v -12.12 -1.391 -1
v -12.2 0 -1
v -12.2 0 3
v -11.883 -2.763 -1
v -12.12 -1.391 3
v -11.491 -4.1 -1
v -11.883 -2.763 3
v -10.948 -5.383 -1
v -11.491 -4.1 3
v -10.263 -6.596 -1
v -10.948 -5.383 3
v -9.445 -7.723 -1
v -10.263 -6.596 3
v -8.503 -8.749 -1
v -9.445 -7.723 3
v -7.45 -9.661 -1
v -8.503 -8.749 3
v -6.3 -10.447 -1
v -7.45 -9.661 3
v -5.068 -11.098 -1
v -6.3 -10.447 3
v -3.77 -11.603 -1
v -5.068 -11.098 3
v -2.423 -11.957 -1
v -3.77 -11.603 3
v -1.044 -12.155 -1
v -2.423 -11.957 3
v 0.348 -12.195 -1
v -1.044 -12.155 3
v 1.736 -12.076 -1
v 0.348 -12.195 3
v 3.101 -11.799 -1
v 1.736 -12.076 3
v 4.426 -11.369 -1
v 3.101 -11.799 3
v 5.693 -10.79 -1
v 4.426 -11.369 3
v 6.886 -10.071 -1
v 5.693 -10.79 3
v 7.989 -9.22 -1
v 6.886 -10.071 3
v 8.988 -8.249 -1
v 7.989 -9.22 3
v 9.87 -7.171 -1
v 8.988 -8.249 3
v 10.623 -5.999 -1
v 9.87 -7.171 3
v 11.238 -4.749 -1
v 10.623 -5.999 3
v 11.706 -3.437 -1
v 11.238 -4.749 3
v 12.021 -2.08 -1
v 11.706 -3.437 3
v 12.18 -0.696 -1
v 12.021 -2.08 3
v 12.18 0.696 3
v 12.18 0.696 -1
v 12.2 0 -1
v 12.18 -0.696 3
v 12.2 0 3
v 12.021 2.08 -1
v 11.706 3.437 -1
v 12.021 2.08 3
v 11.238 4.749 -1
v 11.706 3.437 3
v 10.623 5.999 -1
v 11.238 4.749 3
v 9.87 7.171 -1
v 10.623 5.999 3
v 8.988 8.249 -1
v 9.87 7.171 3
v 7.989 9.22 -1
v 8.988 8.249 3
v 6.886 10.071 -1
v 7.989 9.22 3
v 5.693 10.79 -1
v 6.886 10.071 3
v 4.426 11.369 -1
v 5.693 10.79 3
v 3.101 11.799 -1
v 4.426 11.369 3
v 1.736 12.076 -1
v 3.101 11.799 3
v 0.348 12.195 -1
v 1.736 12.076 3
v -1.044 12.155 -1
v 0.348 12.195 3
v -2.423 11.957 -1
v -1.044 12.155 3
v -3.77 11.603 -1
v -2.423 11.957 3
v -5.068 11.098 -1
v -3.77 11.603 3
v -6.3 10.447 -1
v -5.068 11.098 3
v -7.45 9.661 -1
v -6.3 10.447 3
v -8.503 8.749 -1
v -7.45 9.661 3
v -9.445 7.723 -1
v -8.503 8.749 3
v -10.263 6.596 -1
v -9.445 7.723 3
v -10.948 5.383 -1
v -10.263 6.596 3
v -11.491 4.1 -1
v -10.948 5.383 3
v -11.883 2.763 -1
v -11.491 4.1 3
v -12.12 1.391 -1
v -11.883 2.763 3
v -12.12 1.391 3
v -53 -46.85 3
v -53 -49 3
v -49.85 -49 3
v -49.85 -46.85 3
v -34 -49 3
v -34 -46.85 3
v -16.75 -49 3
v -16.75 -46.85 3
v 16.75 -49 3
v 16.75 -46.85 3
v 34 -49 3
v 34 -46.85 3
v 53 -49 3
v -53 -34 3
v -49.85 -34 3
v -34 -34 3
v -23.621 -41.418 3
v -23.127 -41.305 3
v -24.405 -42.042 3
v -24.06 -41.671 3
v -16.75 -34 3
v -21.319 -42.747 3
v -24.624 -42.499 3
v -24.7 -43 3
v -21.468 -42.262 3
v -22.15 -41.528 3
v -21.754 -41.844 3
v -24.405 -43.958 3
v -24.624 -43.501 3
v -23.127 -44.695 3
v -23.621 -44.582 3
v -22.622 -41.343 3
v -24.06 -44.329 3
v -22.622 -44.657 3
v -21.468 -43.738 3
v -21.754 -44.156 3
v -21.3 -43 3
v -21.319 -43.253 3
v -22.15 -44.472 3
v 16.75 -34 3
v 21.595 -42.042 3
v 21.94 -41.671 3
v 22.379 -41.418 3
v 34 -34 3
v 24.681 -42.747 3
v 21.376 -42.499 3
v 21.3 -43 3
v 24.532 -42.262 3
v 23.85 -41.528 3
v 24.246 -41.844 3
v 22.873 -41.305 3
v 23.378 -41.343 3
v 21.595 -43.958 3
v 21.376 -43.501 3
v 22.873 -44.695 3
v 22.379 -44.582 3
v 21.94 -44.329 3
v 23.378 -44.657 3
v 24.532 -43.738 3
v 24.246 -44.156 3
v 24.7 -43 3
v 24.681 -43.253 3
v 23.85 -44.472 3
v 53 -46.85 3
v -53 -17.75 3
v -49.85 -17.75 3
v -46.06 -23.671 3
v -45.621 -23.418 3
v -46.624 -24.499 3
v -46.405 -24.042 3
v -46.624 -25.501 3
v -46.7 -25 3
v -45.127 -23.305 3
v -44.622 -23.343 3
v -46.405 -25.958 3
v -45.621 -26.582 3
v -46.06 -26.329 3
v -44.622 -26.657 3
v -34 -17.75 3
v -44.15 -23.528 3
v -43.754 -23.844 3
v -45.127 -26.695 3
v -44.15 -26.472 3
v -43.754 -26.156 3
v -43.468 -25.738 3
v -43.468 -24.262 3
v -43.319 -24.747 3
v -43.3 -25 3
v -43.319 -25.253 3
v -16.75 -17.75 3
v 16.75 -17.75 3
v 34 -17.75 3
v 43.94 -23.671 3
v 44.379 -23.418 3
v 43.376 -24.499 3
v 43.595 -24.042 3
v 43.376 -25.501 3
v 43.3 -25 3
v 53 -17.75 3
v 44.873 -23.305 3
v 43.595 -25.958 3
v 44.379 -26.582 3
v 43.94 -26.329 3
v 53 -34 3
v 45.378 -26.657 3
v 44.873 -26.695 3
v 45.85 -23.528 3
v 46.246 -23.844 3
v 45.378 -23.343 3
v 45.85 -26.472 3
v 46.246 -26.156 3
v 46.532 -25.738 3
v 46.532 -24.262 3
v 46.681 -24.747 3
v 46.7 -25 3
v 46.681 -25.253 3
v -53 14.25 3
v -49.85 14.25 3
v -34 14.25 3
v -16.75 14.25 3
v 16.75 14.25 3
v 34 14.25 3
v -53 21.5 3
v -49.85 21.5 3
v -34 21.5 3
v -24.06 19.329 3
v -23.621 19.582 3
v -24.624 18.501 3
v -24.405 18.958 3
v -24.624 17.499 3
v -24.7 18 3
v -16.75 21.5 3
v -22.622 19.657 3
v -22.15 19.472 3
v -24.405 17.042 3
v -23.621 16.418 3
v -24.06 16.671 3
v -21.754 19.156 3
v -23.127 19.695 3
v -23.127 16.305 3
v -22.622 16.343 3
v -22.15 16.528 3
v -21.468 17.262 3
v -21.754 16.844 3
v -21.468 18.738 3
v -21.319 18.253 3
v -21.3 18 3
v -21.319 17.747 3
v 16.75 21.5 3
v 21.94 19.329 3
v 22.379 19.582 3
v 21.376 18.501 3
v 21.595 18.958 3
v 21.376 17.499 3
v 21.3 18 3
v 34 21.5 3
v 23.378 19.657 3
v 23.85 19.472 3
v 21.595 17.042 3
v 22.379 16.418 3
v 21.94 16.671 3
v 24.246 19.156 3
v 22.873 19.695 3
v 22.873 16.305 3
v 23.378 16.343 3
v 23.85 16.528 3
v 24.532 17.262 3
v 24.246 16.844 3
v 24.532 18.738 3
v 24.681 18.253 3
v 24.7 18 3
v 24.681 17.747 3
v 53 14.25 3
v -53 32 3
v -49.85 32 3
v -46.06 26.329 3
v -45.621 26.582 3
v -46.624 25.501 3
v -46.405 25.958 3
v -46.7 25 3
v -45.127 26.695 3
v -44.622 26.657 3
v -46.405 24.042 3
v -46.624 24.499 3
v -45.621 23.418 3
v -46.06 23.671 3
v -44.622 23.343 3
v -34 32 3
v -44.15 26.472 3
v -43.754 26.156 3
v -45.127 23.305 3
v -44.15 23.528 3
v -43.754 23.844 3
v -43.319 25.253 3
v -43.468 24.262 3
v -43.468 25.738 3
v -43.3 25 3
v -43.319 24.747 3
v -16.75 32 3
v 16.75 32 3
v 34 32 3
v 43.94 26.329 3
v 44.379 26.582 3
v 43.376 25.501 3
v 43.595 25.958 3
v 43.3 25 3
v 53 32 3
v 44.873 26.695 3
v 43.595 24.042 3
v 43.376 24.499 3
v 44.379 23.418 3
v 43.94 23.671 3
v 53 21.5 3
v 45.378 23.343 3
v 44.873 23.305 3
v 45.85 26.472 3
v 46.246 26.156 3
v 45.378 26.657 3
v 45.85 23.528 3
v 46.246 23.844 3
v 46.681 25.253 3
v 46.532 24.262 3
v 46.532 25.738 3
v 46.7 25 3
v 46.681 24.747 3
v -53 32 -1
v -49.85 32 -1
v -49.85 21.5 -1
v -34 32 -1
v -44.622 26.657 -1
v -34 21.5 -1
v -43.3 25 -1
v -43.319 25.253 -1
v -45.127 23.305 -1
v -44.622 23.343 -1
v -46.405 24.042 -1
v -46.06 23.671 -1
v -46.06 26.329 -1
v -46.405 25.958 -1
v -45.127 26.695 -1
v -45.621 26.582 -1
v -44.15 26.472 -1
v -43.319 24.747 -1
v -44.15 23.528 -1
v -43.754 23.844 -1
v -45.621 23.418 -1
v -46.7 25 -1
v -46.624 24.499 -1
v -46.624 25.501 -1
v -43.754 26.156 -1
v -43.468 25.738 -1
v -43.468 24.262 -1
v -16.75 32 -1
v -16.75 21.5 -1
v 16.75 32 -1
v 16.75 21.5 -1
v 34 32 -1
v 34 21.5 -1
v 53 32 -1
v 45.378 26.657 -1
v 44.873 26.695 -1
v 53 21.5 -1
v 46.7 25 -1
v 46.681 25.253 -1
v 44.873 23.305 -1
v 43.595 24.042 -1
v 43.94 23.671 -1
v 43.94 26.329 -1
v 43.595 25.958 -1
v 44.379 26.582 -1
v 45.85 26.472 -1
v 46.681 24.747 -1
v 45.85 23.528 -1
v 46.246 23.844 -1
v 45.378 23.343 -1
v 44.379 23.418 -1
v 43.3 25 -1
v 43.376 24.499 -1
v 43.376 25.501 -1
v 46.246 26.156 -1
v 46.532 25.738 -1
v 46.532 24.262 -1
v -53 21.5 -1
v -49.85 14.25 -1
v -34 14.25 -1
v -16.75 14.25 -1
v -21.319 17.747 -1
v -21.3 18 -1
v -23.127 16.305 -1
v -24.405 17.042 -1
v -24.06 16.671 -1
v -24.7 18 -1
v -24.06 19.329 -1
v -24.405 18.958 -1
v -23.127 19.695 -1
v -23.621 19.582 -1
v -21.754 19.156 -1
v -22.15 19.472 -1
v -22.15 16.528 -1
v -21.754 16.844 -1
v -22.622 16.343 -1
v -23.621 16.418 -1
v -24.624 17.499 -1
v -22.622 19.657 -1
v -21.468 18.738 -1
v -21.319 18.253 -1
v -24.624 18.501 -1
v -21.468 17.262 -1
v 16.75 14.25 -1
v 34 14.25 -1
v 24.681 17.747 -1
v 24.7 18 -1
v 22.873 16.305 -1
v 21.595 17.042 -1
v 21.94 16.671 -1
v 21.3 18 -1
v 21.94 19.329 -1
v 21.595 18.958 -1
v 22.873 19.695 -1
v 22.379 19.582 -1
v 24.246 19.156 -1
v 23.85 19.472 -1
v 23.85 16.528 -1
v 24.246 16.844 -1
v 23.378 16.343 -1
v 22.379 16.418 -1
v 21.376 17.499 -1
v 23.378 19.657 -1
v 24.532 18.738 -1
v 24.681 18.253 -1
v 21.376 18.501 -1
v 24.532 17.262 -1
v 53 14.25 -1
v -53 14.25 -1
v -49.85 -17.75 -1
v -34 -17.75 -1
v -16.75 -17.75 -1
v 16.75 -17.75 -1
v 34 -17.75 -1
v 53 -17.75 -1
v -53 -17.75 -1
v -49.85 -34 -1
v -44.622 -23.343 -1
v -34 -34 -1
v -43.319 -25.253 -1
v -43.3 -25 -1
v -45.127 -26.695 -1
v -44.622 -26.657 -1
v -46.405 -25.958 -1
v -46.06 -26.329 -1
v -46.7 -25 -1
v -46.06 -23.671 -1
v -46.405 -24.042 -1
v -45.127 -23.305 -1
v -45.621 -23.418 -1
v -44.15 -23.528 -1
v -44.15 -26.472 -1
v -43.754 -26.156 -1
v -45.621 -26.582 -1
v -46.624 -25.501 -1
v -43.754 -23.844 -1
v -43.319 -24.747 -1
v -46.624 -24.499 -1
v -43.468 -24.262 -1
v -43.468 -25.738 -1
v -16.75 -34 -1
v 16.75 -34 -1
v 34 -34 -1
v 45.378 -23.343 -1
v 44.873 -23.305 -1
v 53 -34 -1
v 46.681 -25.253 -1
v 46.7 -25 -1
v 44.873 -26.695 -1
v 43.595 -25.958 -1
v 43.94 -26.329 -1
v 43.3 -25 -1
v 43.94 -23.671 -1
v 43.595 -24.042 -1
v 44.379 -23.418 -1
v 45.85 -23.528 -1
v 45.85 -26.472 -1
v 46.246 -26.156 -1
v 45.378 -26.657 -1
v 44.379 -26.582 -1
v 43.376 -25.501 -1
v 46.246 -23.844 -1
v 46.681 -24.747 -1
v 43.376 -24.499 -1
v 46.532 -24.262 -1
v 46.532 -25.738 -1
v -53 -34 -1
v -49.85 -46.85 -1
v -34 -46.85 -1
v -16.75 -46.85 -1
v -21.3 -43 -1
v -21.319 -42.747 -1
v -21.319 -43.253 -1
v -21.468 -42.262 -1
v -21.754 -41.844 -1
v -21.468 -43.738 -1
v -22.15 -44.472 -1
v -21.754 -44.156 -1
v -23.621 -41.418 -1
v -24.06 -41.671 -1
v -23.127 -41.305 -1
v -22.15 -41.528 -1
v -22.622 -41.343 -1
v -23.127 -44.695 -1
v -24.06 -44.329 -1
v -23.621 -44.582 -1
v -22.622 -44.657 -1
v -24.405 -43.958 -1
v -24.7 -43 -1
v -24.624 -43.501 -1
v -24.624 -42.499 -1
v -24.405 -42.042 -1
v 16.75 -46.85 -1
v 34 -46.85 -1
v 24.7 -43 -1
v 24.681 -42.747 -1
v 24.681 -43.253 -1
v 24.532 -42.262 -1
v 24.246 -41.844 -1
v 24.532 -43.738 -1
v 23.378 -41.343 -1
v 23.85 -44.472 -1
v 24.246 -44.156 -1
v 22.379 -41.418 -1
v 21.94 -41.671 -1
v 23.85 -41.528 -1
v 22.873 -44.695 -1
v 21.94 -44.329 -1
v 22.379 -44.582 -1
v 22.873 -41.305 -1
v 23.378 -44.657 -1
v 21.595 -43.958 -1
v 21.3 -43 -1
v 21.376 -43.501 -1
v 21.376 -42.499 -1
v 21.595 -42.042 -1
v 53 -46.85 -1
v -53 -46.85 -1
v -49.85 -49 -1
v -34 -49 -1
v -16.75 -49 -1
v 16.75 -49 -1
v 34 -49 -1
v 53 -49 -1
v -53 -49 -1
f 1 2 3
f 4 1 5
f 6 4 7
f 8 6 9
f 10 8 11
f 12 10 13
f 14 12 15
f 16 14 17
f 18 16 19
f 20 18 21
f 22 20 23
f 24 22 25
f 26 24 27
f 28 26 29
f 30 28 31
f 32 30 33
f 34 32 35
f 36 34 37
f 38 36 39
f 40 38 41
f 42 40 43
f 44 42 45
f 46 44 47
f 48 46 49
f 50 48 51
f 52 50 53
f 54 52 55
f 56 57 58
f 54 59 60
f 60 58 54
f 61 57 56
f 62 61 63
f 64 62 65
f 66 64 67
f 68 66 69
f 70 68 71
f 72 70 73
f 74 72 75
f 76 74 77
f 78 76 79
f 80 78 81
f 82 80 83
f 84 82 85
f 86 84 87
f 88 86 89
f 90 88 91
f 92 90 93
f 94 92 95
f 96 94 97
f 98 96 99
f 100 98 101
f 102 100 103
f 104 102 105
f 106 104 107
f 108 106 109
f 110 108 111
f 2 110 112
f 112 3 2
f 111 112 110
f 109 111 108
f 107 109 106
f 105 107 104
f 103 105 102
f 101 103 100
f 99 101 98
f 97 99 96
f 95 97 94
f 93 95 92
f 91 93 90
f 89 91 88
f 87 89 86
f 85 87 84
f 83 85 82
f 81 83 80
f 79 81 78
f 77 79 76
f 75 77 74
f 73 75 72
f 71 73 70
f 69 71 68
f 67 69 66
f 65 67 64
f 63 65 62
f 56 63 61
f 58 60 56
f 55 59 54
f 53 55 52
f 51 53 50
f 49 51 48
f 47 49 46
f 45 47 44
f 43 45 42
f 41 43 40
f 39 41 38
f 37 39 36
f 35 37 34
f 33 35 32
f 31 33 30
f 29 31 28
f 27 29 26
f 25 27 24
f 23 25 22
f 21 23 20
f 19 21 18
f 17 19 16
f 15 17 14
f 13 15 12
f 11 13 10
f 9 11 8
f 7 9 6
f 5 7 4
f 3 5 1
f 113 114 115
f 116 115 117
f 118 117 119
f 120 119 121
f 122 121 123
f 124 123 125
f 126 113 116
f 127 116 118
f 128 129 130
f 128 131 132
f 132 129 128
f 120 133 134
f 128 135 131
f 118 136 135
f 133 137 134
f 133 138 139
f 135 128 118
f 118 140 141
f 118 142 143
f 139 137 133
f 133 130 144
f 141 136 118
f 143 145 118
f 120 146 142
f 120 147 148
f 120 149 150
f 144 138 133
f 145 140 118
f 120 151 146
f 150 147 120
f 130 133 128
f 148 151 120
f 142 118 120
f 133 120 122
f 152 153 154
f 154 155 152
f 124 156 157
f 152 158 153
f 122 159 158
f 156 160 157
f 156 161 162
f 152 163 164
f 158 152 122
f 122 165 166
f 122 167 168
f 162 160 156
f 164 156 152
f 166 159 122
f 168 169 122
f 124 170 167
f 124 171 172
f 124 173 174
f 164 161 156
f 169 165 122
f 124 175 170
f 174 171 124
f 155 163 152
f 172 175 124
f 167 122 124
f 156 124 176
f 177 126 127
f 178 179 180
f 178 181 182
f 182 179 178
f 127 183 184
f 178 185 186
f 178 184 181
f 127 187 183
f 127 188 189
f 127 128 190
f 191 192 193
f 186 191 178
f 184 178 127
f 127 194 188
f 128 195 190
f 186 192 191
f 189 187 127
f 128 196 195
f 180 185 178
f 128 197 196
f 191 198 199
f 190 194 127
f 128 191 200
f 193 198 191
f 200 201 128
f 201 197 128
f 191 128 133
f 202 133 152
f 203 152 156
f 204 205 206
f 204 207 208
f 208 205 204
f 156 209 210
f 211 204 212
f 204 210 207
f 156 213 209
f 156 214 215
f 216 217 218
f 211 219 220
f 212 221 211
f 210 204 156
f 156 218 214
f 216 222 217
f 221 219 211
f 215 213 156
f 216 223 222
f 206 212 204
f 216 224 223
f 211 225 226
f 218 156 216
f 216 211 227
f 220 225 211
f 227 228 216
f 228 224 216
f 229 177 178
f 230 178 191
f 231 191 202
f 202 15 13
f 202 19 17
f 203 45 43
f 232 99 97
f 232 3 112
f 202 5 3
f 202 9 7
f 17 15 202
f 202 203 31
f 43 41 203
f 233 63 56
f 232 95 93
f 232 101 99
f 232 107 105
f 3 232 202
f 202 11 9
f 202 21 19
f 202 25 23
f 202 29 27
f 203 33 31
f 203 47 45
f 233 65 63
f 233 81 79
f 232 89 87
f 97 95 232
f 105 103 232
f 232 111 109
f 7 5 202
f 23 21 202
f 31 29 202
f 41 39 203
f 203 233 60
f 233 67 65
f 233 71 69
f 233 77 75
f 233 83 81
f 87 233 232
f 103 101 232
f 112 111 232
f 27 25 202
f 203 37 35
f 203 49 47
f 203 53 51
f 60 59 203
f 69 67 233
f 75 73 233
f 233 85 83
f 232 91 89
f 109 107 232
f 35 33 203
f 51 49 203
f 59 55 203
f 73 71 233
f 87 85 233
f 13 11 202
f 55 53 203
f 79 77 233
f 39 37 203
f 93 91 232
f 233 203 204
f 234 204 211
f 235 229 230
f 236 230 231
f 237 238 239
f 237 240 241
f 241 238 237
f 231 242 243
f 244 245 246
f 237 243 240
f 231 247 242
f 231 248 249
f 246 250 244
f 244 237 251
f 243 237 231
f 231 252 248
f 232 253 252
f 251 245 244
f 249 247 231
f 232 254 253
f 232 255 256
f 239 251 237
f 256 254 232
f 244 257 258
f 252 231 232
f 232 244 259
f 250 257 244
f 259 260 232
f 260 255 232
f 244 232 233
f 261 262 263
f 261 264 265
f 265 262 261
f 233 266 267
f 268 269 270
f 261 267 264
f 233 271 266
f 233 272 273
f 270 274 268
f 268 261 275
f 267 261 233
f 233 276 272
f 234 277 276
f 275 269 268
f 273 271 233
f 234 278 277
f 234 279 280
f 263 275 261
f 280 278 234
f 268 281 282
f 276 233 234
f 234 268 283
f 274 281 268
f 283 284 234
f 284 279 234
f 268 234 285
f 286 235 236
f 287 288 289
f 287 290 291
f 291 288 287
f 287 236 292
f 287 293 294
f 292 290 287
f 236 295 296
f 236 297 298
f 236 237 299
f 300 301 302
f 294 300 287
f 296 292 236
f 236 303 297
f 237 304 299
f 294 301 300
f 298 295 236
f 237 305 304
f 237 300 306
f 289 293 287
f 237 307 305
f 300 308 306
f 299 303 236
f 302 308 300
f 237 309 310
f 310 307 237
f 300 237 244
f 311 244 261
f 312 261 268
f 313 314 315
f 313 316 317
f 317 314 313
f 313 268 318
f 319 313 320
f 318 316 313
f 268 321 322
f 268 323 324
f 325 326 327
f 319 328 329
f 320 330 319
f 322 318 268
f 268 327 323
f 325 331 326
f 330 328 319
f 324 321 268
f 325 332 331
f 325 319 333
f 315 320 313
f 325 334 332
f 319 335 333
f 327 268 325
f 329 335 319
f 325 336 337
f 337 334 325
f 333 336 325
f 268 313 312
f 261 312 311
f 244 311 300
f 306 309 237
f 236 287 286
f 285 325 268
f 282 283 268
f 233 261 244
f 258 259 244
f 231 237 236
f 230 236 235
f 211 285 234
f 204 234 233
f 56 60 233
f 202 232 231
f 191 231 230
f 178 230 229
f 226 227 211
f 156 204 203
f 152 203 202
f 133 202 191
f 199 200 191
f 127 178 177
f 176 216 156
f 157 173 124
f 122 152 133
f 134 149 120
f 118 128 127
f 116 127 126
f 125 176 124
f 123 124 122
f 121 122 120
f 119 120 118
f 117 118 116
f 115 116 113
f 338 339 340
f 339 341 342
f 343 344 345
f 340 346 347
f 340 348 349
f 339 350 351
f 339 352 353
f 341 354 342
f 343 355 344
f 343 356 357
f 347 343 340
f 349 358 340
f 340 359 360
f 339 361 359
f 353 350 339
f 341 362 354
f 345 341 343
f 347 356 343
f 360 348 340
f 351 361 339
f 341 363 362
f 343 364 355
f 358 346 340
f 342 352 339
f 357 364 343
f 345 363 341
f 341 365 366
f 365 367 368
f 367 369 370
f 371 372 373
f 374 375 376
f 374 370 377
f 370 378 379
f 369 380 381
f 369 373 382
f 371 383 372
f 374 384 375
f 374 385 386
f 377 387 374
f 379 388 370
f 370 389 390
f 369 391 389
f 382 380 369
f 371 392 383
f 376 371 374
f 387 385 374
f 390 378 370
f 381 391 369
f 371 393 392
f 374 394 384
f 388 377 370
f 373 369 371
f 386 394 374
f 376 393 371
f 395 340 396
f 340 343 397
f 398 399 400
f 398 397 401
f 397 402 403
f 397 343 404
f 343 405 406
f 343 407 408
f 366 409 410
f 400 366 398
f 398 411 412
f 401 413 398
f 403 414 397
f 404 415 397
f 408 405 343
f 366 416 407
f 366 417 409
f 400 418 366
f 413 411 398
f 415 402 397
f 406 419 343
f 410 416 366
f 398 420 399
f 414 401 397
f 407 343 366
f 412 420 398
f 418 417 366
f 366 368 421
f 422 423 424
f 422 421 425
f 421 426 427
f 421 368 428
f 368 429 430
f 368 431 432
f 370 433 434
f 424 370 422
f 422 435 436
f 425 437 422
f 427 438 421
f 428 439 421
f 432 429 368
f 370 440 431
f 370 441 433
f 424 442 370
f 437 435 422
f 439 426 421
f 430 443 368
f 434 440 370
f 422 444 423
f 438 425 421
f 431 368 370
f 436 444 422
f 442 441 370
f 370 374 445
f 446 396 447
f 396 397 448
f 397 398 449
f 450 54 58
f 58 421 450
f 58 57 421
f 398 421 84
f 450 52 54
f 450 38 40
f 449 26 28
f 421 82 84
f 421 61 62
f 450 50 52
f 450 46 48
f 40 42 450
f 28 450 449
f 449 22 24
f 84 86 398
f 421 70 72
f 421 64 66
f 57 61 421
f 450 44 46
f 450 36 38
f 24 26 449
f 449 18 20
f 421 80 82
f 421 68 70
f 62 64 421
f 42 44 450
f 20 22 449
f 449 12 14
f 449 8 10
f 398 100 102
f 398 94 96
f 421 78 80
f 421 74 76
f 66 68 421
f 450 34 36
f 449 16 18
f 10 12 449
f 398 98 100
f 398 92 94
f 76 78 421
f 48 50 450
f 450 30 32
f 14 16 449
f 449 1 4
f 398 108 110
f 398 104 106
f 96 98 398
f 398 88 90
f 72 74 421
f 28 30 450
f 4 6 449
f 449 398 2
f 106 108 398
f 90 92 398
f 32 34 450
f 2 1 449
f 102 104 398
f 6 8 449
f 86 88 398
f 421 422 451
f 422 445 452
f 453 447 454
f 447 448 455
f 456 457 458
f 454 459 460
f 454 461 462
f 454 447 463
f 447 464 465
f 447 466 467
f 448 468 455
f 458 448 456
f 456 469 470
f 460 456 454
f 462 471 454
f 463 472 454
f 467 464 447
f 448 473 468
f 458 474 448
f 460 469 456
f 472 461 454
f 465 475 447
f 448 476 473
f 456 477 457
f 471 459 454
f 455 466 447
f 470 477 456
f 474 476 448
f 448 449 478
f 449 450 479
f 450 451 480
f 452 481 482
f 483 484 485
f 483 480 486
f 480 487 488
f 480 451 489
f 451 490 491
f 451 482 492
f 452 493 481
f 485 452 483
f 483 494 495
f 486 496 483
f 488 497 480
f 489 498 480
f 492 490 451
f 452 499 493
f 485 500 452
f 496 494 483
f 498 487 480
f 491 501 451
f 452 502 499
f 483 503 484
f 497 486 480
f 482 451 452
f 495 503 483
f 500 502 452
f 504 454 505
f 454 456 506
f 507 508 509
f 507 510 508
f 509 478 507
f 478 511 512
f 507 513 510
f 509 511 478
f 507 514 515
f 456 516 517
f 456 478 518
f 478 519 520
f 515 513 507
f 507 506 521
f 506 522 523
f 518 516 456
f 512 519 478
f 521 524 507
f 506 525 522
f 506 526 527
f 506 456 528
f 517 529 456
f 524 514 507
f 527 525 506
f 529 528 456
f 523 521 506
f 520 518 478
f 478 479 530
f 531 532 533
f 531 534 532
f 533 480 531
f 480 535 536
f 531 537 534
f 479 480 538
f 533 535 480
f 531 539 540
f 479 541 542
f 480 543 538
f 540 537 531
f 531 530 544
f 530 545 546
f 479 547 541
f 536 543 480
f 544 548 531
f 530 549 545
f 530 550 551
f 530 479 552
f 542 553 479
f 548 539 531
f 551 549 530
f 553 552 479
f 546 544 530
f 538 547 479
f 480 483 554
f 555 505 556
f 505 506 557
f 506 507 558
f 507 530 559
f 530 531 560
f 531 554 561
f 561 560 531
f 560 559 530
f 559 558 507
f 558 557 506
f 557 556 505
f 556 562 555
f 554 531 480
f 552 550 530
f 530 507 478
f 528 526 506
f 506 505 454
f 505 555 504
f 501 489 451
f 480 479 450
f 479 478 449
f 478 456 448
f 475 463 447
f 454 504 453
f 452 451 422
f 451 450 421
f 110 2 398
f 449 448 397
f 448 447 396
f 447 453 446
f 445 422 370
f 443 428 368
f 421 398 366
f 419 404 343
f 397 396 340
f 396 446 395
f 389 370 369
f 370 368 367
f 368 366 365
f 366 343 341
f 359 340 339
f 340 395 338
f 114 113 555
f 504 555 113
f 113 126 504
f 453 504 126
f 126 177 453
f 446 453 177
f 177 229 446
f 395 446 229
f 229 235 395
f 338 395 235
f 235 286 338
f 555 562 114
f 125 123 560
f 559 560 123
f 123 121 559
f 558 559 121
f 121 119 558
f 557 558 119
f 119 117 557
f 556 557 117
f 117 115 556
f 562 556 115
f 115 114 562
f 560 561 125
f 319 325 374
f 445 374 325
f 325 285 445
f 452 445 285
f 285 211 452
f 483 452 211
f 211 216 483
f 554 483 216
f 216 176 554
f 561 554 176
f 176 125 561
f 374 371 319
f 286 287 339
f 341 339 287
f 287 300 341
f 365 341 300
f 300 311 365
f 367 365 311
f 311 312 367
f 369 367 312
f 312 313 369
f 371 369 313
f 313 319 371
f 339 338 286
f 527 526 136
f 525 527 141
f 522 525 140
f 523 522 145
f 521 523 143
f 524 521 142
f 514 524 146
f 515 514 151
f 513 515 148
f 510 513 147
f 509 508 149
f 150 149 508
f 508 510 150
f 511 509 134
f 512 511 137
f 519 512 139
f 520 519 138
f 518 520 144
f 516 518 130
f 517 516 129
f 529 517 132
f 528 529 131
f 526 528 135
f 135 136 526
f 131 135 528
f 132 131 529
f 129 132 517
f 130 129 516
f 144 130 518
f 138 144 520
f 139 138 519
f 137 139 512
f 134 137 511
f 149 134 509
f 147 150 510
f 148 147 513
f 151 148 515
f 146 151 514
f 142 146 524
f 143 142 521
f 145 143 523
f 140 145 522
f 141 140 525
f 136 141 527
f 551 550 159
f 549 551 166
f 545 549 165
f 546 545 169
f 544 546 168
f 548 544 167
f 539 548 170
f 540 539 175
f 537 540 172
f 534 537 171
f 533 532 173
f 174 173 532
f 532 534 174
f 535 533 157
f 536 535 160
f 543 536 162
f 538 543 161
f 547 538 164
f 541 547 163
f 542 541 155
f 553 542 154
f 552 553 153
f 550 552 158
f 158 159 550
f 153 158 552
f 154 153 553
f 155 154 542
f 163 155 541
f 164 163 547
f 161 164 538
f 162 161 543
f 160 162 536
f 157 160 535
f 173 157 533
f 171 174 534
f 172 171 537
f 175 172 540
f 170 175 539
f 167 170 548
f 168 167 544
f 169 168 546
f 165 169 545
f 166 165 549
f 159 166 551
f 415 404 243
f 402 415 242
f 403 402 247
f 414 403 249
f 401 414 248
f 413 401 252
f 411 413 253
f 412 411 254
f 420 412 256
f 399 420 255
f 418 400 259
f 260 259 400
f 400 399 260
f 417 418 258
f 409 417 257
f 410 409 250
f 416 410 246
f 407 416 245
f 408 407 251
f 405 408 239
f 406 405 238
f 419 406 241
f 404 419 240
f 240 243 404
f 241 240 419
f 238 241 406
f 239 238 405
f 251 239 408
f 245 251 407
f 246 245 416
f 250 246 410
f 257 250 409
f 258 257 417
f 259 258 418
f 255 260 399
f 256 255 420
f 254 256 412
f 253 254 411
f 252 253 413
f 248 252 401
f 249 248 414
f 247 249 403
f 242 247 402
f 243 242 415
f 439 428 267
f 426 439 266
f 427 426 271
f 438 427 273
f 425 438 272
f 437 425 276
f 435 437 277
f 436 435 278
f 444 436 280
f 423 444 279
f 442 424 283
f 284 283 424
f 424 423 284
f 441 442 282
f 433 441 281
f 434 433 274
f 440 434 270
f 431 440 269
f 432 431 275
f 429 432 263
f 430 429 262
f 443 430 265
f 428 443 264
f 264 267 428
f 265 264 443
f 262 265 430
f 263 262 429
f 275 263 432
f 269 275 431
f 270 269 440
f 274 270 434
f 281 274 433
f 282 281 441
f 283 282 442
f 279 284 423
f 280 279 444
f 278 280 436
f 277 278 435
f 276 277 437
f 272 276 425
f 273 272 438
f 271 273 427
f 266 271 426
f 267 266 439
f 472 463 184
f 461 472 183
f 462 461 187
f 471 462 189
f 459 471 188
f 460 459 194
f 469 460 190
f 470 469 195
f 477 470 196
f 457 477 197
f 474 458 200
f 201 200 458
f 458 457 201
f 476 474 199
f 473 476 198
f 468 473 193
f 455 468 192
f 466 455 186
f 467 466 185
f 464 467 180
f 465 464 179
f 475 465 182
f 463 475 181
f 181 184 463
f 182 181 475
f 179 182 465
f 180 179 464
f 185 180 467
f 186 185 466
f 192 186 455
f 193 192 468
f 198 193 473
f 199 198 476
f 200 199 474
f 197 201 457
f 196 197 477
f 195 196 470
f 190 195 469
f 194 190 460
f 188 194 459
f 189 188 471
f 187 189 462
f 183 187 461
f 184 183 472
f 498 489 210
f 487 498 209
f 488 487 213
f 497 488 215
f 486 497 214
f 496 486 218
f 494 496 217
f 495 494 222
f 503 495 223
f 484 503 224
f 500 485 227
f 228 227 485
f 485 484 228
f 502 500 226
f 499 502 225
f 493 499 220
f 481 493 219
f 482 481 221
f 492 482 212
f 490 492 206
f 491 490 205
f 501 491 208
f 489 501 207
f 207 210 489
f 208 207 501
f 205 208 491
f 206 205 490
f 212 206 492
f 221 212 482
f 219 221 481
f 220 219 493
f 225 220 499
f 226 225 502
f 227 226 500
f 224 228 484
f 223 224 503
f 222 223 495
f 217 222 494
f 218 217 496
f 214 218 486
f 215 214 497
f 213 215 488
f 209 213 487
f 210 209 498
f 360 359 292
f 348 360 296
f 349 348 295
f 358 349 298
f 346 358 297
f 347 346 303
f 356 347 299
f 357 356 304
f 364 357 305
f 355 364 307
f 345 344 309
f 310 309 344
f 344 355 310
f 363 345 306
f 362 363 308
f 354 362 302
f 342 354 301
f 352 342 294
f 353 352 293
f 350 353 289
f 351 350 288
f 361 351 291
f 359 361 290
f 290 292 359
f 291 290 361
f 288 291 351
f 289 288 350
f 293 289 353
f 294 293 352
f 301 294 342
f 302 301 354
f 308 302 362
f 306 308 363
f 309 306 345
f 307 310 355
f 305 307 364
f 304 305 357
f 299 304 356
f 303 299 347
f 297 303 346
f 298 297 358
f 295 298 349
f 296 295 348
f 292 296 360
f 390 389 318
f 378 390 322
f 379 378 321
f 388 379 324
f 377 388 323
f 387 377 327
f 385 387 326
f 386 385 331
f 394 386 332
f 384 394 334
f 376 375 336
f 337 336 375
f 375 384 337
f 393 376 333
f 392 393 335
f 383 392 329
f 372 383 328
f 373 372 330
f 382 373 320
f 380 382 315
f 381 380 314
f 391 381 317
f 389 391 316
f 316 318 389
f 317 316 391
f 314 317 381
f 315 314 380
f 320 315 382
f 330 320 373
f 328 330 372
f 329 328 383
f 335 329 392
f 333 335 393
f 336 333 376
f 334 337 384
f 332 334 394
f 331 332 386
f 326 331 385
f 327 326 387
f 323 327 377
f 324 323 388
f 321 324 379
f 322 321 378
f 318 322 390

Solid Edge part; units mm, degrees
sketch "Sketch1" plane through (0, 0, -1) normal (0, 0, 1) x (1, 0, 0)
  line L0 (-53, -49) -> (53, -49)
  line L1 (53, -49) -> (53, 32)
  line L2 (53, 32) -> (-53, 32)
  line L3 (-53, 32) -> (-53, -49)
  circle A0 centre (0, 0) radius 12.2
  circle A1 centre (-23, -43) radius 1.7
  circle A2 centre (23, -43) radius 1.7
  circle A3 centre (-23, 18) radius 1.7
  circle A4 centre (23, 18) radius 1.7
  circle A5 centre (-45, -25) radius 1.7
  circle A6 centre (45, -25) radius 1.7
  circle A7 centre (-45, 25) radius 1.7
  circle A8 centre (45, 25) radius 1.7
extrude "ExtrudedProtrusion_1" add sketch "Sketch1" along normal blind 4
extrude "ExtrudedProtrusion_2" [suppressed]
extrude "ExtrudedProtrusion_3" [suppressed]
